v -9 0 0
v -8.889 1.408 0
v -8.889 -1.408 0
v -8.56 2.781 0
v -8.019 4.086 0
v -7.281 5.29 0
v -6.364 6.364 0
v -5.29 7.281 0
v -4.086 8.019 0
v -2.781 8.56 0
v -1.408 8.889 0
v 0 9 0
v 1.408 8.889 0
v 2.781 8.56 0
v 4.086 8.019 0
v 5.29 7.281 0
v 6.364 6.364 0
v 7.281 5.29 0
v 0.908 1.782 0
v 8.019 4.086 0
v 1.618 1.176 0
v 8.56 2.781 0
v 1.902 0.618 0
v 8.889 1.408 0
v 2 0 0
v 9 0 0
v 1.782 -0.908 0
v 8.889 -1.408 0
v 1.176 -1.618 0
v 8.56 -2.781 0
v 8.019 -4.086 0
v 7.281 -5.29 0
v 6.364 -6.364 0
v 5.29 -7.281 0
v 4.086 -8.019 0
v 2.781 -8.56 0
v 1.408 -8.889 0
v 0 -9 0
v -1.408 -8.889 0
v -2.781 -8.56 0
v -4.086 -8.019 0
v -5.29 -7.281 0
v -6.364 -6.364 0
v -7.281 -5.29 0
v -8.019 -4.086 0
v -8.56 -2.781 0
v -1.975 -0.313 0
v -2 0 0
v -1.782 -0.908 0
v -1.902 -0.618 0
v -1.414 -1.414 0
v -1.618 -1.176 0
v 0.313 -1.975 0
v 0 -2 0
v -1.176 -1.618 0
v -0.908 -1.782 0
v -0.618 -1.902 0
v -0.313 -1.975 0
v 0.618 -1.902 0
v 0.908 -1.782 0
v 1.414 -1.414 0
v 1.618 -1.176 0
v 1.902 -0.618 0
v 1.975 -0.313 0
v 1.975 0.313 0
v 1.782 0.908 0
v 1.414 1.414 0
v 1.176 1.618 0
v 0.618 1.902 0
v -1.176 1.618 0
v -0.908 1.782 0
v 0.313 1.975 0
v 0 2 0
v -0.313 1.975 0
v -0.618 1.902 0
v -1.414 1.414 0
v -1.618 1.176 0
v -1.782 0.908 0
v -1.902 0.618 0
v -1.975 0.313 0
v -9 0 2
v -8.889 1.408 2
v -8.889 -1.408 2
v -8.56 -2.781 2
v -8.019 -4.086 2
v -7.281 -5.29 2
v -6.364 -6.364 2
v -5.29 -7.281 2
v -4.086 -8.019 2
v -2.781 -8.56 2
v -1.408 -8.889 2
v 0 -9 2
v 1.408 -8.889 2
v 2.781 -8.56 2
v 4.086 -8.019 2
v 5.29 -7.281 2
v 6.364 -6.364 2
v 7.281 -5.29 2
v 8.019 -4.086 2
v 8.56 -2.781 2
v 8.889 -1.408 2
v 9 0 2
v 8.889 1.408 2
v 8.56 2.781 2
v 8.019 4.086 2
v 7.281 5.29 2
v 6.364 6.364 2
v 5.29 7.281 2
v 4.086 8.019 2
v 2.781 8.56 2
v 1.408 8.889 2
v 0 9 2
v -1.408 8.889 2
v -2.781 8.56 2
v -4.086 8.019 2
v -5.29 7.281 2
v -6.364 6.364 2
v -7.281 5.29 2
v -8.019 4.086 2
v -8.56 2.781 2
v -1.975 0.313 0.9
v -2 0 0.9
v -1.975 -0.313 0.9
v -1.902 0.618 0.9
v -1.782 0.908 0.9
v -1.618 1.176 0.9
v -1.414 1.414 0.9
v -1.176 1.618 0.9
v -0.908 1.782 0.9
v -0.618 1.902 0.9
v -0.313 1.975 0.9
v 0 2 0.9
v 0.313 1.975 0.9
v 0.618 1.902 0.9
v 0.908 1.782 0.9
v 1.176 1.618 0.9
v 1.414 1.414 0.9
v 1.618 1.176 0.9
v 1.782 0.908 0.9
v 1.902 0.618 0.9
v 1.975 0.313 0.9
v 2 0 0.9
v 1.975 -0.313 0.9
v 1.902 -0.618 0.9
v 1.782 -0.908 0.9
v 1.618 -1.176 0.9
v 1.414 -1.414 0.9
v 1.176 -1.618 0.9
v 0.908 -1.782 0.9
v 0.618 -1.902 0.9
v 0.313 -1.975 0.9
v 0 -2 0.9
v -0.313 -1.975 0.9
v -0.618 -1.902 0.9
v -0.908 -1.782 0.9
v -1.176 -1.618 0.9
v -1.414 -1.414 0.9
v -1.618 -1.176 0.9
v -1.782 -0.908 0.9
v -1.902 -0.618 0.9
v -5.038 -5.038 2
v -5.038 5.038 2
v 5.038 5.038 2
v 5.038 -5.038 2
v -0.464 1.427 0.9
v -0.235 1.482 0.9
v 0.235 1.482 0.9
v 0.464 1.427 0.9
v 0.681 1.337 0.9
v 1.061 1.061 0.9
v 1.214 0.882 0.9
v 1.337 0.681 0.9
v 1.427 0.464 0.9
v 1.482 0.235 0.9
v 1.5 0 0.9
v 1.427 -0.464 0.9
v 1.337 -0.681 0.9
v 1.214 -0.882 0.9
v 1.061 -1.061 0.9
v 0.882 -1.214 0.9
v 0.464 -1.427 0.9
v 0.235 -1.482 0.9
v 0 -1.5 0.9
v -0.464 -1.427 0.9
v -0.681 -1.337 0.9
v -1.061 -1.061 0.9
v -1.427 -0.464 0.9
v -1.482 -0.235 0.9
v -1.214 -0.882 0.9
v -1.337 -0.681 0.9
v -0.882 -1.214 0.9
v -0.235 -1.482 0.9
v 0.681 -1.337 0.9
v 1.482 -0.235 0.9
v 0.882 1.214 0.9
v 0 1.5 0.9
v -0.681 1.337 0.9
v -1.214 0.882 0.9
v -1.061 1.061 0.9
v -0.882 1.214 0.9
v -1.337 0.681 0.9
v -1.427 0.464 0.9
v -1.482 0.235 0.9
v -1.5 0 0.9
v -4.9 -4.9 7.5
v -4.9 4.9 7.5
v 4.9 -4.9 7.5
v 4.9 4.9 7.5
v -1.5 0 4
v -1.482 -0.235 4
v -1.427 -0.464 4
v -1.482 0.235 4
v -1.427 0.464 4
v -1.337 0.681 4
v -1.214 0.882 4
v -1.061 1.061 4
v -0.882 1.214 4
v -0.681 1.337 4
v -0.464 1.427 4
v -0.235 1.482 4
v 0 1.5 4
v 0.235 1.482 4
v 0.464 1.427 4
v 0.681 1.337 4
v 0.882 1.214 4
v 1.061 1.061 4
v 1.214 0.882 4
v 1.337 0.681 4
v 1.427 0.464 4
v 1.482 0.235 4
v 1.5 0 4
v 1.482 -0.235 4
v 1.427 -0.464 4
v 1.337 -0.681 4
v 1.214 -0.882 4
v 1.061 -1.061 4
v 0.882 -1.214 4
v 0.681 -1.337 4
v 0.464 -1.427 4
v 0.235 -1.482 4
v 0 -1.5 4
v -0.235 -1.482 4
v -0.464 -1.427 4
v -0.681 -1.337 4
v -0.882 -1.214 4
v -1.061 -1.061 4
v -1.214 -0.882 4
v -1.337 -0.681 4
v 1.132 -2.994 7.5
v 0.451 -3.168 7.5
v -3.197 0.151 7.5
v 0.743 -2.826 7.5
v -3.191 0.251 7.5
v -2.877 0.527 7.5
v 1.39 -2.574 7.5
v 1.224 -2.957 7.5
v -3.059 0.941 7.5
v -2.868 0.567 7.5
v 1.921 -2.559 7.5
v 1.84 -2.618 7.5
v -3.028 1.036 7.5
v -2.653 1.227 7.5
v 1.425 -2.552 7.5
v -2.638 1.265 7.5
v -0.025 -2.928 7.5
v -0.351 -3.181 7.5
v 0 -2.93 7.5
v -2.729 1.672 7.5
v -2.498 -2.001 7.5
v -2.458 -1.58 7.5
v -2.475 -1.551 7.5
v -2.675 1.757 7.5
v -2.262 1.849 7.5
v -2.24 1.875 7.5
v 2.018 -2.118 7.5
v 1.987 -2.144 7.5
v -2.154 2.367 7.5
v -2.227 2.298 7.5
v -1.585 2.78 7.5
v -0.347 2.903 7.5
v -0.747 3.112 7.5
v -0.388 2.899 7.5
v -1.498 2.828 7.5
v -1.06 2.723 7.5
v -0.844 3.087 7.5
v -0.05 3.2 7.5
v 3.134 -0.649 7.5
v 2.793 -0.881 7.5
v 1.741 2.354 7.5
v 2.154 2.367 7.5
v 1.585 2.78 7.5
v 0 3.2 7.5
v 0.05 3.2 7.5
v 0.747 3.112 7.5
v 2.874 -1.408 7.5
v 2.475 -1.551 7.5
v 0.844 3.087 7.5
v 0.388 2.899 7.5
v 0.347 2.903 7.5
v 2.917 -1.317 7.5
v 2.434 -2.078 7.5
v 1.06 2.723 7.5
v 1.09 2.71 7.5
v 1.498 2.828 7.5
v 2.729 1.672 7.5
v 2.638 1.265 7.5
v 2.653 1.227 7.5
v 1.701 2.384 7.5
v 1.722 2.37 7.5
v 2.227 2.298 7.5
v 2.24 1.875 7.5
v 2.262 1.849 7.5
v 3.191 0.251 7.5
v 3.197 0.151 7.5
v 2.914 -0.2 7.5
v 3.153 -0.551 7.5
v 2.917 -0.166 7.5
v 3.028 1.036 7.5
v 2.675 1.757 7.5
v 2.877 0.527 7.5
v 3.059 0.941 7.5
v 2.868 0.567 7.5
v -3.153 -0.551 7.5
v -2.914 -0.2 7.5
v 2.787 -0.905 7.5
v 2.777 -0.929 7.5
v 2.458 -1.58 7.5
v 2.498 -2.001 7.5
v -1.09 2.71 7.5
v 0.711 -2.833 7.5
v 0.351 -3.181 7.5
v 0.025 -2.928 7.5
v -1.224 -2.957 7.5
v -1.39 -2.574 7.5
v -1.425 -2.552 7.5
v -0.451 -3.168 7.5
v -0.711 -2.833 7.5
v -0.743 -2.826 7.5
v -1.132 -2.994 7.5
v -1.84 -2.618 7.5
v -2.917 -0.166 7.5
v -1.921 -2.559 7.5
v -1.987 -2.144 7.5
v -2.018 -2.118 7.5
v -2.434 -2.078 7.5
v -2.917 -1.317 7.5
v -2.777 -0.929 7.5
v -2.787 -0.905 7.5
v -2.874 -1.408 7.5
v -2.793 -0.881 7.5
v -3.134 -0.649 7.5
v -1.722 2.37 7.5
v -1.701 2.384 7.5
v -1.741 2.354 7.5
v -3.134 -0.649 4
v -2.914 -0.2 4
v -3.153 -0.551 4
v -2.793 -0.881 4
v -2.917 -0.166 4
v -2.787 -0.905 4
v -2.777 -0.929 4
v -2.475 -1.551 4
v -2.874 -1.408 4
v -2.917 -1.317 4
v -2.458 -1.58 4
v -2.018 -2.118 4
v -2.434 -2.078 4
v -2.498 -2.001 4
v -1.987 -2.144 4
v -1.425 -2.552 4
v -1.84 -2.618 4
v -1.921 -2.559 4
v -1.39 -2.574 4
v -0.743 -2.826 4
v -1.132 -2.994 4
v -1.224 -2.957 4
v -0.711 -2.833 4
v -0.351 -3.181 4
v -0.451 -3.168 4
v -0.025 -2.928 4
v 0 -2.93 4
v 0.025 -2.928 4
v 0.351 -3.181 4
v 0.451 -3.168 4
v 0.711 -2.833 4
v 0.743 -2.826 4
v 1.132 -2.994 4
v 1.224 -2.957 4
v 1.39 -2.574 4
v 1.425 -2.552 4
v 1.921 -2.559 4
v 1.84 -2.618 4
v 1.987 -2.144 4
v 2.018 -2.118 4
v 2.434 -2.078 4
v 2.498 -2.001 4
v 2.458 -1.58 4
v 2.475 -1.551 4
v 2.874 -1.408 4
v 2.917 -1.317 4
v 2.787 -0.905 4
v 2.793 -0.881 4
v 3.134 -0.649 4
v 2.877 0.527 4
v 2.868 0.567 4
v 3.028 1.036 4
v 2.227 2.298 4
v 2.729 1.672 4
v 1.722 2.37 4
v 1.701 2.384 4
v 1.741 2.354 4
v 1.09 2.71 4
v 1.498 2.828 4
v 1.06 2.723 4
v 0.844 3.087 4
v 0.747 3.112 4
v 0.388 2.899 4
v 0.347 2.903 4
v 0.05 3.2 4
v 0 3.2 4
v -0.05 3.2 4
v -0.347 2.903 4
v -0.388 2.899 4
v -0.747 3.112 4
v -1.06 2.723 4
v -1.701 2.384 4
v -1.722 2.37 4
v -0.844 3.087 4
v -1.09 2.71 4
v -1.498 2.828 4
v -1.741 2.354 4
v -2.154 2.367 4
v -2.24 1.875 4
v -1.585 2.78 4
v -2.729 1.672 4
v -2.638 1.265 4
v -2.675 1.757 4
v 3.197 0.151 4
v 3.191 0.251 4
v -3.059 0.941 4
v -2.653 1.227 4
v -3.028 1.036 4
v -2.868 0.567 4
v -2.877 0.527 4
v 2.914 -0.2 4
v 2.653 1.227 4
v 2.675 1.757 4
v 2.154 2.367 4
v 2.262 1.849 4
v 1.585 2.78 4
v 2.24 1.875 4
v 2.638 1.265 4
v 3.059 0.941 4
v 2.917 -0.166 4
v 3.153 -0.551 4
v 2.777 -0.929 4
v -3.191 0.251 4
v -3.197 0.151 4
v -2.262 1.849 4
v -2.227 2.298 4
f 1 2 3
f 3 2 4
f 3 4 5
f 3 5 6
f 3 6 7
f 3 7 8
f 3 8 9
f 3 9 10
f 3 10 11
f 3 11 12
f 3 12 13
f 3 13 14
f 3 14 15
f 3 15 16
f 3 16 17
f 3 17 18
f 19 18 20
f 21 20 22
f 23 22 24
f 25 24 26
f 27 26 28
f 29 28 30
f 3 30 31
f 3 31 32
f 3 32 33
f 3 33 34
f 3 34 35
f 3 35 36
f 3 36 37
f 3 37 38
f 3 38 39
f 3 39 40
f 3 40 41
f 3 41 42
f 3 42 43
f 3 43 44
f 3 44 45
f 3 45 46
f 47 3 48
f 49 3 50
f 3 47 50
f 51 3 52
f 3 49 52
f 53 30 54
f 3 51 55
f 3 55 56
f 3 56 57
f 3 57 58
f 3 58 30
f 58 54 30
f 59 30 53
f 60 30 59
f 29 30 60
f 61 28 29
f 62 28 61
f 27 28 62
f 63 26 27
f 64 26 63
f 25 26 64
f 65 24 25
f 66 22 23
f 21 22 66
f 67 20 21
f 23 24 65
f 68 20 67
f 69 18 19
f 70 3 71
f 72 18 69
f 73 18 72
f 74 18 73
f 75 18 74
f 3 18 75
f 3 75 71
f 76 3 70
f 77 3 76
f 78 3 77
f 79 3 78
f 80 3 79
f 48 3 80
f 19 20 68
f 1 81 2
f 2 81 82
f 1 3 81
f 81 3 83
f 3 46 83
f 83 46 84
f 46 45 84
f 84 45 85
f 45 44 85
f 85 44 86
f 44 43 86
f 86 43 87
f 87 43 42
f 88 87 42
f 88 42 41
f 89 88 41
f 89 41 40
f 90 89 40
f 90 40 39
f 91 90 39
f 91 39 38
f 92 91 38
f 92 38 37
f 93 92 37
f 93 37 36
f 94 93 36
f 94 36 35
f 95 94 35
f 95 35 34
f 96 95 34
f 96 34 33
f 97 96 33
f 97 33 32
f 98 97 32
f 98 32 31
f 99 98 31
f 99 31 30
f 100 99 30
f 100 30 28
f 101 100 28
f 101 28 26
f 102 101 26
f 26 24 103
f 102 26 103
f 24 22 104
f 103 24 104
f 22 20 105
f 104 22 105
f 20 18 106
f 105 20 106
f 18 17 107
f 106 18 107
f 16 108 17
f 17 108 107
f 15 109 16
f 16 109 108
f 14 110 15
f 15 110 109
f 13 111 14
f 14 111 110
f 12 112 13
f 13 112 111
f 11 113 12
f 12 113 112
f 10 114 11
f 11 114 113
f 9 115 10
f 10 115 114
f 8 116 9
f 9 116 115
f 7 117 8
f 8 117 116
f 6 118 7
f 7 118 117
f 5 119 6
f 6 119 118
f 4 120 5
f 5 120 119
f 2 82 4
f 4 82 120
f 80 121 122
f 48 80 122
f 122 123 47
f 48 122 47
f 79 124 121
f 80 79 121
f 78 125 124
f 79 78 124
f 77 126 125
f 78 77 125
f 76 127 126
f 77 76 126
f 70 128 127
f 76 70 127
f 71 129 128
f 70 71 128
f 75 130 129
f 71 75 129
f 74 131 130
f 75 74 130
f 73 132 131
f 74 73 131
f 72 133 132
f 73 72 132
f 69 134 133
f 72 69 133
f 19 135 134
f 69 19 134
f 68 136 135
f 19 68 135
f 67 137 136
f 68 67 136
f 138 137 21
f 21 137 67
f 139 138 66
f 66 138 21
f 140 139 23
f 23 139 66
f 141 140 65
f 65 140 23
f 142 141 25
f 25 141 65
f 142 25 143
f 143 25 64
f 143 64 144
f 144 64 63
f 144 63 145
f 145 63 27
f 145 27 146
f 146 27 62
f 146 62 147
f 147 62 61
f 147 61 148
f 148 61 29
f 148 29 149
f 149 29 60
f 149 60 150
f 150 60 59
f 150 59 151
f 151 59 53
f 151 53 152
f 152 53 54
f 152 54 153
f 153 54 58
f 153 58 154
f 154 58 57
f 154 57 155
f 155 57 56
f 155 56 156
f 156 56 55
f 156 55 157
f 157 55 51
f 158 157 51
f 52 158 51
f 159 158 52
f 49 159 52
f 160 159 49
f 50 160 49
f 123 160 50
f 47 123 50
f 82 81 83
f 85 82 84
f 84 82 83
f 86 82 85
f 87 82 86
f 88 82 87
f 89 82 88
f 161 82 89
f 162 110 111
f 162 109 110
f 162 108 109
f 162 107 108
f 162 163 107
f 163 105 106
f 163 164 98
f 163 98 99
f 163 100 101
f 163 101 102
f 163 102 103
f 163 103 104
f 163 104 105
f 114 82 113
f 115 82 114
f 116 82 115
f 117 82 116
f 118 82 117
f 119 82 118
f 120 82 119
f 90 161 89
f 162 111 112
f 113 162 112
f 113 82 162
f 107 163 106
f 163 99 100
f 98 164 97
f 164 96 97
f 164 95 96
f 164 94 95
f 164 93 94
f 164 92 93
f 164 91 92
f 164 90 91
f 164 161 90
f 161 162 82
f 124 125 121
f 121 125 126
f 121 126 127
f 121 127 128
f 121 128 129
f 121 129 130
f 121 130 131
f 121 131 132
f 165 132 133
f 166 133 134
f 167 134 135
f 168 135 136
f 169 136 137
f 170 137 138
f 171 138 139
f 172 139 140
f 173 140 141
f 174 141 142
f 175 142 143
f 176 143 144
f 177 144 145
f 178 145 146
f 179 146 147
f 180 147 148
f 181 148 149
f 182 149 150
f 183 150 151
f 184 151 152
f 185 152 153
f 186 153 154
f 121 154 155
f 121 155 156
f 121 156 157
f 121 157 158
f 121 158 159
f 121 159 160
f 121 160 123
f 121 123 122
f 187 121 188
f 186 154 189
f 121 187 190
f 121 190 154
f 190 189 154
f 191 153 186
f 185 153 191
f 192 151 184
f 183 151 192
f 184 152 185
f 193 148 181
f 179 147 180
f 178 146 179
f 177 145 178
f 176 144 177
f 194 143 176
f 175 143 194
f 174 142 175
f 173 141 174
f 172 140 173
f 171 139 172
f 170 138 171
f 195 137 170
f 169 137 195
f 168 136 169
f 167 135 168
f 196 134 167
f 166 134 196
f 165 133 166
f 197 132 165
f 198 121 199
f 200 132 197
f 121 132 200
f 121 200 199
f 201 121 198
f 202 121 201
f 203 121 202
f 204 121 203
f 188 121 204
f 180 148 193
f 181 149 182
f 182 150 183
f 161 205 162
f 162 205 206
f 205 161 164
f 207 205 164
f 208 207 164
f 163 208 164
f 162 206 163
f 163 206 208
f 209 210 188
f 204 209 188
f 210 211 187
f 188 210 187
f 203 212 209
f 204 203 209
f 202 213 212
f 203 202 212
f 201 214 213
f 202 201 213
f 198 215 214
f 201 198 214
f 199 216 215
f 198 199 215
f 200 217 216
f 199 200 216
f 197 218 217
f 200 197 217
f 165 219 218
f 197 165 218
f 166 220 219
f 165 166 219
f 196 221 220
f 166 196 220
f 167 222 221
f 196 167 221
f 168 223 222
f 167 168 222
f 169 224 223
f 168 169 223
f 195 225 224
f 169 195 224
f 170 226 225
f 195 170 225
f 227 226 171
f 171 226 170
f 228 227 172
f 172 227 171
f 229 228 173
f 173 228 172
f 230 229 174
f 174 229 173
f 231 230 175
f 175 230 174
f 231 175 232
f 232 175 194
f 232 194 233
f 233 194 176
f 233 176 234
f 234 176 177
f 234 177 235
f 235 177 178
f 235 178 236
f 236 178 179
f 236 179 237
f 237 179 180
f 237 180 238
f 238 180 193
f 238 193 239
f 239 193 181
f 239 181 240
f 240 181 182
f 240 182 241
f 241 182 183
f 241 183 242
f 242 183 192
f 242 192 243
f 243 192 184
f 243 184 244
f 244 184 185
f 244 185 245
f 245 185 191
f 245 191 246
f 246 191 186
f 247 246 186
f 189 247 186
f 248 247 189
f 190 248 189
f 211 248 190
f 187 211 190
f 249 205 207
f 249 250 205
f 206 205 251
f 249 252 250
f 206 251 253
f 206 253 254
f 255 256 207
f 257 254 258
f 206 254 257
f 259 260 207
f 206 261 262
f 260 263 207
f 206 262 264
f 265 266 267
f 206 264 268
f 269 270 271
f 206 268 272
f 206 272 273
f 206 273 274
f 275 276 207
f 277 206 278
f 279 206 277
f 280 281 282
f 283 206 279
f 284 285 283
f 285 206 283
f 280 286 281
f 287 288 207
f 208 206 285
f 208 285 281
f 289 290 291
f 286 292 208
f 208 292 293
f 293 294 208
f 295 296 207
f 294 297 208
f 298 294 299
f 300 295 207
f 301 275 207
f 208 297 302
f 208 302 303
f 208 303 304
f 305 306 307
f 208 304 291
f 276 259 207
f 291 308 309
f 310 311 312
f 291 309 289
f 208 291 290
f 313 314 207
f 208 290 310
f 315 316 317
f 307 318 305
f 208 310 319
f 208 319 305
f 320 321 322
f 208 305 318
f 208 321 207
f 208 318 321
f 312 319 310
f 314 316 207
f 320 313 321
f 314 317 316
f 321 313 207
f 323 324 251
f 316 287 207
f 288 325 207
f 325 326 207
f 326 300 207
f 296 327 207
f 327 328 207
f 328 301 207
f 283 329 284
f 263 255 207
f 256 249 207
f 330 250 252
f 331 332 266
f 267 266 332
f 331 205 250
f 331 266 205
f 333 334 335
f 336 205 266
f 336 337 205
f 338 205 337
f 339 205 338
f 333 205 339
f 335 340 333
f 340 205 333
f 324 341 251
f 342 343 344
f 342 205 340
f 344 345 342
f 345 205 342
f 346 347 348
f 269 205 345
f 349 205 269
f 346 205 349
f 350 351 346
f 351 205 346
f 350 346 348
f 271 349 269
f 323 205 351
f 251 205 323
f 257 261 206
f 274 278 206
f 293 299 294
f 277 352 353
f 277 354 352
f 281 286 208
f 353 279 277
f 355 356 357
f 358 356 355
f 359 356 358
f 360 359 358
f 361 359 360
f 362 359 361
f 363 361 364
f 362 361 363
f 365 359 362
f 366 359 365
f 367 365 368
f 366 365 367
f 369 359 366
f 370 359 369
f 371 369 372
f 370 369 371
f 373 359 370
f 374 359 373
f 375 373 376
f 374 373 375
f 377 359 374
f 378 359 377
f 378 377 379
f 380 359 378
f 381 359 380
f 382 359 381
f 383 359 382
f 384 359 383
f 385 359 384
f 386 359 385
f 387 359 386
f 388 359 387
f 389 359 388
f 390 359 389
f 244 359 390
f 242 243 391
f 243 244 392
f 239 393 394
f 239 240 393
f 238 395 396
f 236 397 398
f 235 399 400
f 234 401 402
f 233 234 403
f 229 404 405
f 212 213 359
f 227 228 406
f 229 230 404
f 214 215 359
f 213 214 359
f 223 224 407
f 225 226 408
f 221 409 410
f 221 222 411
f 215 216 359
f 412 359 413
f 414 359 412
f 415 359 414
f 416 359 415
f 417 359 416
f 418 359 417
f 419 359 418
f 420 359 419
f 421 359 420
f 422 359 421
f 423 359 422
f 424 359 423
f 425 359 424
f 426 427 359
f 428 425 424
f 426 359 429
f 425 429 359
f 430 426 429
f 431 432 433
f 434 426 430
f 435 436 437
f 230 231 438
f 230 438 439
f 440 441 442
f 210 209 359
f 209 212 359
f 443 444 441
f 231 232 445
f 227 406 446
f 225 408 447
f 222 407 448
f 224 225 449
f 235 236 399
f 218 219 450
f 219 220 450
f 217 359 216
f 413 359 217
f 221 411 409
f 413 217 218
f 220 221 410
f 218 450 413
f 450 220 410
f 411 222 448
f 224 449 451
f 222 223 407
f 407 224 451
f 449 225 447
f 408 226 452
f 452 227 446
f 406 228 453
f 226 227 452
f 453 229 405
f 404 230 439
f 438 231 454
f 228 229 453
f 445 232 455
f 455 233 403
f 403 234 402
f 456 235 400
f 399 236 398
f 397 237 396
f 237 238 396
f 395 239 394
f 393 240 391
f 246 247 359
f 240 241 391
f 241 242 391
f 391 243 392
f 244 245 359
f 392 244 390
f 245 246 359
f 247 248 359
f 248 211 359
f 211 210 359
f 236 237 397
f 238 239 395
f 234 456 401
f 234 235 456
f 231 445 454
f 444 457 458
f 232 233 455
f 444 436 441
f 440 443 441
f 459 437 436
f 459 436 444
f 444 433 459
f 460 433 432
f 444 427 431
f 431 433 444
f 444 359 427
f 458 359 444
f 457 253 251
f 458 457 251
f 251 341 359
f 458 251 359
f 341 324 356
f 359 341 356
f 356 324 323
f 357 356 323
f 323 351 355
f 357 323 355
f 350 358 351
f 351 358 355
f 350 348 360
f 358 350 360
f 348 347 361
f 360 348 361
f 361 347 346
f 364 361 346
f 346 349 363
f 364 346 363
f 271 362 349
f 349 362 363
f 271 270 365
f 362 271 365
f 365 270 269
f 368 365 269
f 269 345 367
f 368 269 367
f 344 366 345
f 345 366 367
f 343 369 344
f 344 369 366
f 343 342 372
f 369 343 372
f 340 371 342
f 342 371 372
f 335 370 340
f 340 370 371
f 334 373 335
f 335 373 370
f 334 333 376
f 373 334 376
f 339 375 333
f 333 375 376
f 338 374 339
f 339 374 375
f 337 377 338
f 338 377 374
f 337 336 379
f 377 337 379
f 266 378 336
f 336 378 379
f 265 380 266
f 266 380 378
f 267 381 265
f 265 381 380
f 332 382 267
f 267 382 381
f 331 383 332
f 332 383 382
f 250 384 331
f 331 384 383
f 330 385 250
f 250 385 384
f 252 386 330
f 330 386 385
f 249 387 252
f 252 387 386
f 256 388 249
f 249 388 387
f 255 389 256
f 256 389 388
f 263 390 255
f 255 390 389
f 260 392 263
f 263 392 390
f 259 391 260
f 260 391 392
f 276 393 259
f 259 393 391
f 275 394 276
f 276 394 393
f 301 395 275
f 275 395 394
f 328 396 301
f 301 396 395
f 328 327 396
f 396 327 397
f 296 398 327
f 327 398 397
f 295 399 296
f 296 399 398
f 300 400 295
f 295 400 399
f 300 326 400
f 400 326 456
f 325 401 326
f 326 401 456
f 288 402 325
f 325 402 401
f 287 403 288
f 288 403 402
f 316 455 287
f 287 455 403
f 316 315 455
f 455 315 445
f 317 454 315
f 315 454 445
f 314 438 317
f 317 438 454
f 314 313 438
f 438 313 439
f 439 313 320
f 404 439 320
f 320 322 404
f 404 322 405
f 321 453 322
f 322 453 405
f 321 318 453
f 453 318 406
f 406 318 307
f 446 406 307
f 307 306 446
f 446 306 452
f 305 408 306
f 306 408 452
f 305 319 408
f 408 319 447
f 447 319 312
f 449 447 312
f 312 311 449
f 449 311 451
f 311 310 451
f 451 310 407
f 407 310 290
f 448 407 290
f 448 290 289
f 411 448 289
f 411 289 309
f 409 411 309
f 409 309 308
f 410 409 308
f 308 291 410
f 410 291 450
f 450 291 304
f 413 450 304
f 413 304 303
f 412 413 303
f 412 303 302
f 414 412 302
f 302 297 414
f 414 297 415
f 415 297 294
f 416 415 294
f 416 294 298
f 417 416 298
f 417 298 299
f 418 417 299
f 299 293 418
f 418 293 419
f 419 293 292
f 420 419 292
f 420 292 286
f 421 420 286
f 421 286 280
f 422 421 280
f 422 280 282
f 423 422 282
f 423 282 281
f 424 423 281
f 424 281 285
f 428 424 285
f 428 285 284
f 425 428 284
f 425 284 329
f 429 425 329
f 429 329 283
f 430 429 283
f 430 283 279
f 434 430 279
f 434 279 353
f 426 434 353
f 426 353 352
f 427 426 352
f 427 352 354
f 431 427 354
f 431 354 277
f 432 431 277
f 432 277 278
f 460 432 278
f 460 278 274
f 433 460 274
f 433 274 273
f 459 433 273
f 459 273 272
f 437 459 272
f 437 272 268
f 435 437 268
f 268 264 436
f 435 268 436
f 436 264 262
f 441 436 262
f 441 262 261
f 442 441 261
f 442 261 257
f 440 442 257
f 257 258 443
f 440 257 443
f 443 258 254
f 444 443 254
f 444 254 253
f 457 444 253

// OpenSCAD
/**
 *  Parametric servo arm generator for OpenScad
 *  Générateur de palonnier de servo pour OpenScad
 *
 *  Copyright (c) 2012 Charles Rincheval.  All rights reserved.
 *
 *  This library is free software; you can redistribute it and/or
 *  modify it under the terms of the GNU Lesser General Public
 *  License as published by the Free Software Foundation; either
 *  version 2.1 of the License, or (at your option) any later version.
 *
 *  This library is distributed in the hope that it will be useful,
 *  but WITHOUT ANY WARRANTY; without even the implied warranty of
 *  MERCHANTABILITY or FITNESS FOR A PARTICULAR PURPOSE.  See the GNU
 *  Lesser General Public License for more details.
 *
 *  You should have received a copy of the GNU Lesser General Public
 *  License along with this library; if not, write to the Free Software
 *  Foundation, Inc., 51 Franklin St, Fifth Floor, Boston, MA  02110-1301  USA
 *
 *  Last update :
 *  https://github.com/hugokernel/OpenSCAD_ServoArms
 *
 *  http://www.digitalspirit.org/
 */

$fn = 40;

/**
 *  Clear between arm head and servo head
 *  With PLA material, use clear : 0.3, for ABS, use 0.2
 */
SERVO_HEAD_CLEAR = 0.2;

/**
 *  Head / Tooth parameters
 *  Futaba 3F Standard Spline
 *  http://www.servocity.com/html/futaba_servo_splines.html
 *
 *  First array (head related) :
 *  0. Head external diameter
 *  1. Head heigth
 *  2. Head thickness
 *  3. Head screw diameter
 *
 *  Second array (tooth related) :
 *  0. Tooth count
 *  1. Tooth height
 *  2. Tooth length
 *  3. Tooth width
 */
FUTABA_3F_SPLINE = [
    [6, 4, 1.1, 2.5],
    [25, 0.3, 0.7, 0.1]
];

module servo_futaba_3f(length, count) {
    servo_arm(FUTABA_3F_SPLINE, [length, count]);
}

/**
 *  If you want to support a new servo, juste add a new spline definition array
 *  and a module named like servo_XXX_YYY where XXX is servo brand and YYY is the
 *  connection type (3f) or the servo type (s3003)
 */

module servo_standard(length, count) {
    servo_futaba_3f(length, count);
}

/**
 *  Tooth
 *
 *    |<-w->|
 *    |_____|___
 *    /     \  ^h
 *  _/       \_v
 *   |<--l-->|
 *
 *  - tooth length (l)
 *  - tooth width (w)
 *  - tooth height (h)
 *  - height
 *
 */
module servo_head_tooth(length, width, height, head_height) {
    linear_extrude(height = head_height) {
        polygon([[-length / 2, 0], [-width / 2, height], [width / 2, height], [length / 2,0]]);
    }
}

/**
 *  Servo head
 */
module servo_head(params, clear = SERVO_HEAD_CLEAR) {

    head = params[0];
    tooth = params[1];

    head_diameter = head[0];
    head_heigth = head[1];

    tooth_count = tooth[0];
    tooth_height = tooth[1];
    tooth_length = tooth[2];
    tooth_width = tooth[3];

    % cylinder(r = head_diameter / 2, h = head_heigth + 1);

    cylinder(r = head_diameter / 2 - tooth_height + 0.03 + clear, h = head_heigth);

    for (i = [0 : tooth_count]) {
        rotate([0, 0, i * (360 / tooth_count)]) {
            translate([0, head_diameter / 2 - tooth_height + clear, 0]) {
                servo_head_tooth(tooth_length, tooth_width, tooth_height, head_heigth);
            }
        }
    }
}

/**
 *  Servo hold
 *  - Head / Tooth parameters
 *  - Arms params (length and count)
 */
module servo_arm(params, arms) {

    head = params[0];
    tooth = params[1];

    head_diameter = head[0];
    head_heigth = head[1];
    head_thickness = head[2];
    head_screw_diameter = head[3];

    tooth_length = tooth[2];
    tooth_width = tooth[3];

    arm_length = arms[0];
    arm_count = arms[1];

    /**
     *  Servo arm
     *  - length is from center to last hole
     */
    module arm(tooth_length, tooth_width, head_height, head_heigth, hole_count = 1) {

        arm_screw_diameter = 2;

        difference() {
            union() {
                cylinder(r = tooth_width / 2, h = head_heigth);

                linear_extrude(height = head_heigth) {
                    polygon([
                        [-tooth_width / 2, 0], [-tooth_width / 3, tooth_length],
                        [tooth_width / 3, tooth_length], [tooth_width / 2, 0]
                    ]);
                }

                translate([0, tooth_length, 0]) {
                    cylinder(r = tooth_width / 3, h = head_heigth);
                }

                if (tooth_length >= 12) {
                    translate([-head_heigth / 2 + 2, 3.8, -4]) {
                        rotate([90, 0, 0]) {
                            rotate([0, -90, 0]) {
                                linear_extrude(height = head_heigth) {
                                    polygon([
                                        [-tooth_length / 1.7, 4], [0, 4], [0, - head_height + 5],
                                        [-2, - head_height + 5]
                                    ]);
                                }
                            }
                        }
                    }
                }
            }

            // Hole
            for (i = [0 : hole_count - 1]) {
                //translate([0, length - (length / hole_count * i), -1]) {
                translate([0, tooth_length - (4 * i), -1]) {
                    cylinder(r = arm_screw_diameter / 2, h = 10);
                }
            }

            cylinder(r = head_screw_diameter / 2, h = 10);
        }
    }

    difference() {
        translate([0, 0, 0.1]) {
            cylinder(r = head_diameter / 2 + head_thickness, h = head_heigth + 1);
        }

        cylinder(r = head_screw_diameter / 2, h = 10);

        servo_head(params);
    }

    arm_thickness = head_thickness;

    // Arm
    translate([0, 0, head_heigth]) {
        for (i = [0 : arm_count - 1]) {
            rotate([0, 0, i * (360 / arm_count)]) {
                arm(arm_length, head_diameter + arm_thickness * 2, head_heigth, 2);
            }
        }
    }
}

module wheelhub() {
	translate([0,0,1])	
	difference() {
		union() {
			hull() {
				cube([10.1,10.1,1],center=true);
				translate([0,0,6]) {
					cube([9.8,9.8,1],center=true);
				}
			}
			cylinder(d=18,h=2,center=true);
		}
		translate([0,0,-10]) cylinder(d=3,h=20);
		translate([0,0,-1.1]) cylinder(d=4,h=1);
		translate([0,0,3]) servo_head(FUTABA_3F_SPLINE);
	}
}

wheelhub();
